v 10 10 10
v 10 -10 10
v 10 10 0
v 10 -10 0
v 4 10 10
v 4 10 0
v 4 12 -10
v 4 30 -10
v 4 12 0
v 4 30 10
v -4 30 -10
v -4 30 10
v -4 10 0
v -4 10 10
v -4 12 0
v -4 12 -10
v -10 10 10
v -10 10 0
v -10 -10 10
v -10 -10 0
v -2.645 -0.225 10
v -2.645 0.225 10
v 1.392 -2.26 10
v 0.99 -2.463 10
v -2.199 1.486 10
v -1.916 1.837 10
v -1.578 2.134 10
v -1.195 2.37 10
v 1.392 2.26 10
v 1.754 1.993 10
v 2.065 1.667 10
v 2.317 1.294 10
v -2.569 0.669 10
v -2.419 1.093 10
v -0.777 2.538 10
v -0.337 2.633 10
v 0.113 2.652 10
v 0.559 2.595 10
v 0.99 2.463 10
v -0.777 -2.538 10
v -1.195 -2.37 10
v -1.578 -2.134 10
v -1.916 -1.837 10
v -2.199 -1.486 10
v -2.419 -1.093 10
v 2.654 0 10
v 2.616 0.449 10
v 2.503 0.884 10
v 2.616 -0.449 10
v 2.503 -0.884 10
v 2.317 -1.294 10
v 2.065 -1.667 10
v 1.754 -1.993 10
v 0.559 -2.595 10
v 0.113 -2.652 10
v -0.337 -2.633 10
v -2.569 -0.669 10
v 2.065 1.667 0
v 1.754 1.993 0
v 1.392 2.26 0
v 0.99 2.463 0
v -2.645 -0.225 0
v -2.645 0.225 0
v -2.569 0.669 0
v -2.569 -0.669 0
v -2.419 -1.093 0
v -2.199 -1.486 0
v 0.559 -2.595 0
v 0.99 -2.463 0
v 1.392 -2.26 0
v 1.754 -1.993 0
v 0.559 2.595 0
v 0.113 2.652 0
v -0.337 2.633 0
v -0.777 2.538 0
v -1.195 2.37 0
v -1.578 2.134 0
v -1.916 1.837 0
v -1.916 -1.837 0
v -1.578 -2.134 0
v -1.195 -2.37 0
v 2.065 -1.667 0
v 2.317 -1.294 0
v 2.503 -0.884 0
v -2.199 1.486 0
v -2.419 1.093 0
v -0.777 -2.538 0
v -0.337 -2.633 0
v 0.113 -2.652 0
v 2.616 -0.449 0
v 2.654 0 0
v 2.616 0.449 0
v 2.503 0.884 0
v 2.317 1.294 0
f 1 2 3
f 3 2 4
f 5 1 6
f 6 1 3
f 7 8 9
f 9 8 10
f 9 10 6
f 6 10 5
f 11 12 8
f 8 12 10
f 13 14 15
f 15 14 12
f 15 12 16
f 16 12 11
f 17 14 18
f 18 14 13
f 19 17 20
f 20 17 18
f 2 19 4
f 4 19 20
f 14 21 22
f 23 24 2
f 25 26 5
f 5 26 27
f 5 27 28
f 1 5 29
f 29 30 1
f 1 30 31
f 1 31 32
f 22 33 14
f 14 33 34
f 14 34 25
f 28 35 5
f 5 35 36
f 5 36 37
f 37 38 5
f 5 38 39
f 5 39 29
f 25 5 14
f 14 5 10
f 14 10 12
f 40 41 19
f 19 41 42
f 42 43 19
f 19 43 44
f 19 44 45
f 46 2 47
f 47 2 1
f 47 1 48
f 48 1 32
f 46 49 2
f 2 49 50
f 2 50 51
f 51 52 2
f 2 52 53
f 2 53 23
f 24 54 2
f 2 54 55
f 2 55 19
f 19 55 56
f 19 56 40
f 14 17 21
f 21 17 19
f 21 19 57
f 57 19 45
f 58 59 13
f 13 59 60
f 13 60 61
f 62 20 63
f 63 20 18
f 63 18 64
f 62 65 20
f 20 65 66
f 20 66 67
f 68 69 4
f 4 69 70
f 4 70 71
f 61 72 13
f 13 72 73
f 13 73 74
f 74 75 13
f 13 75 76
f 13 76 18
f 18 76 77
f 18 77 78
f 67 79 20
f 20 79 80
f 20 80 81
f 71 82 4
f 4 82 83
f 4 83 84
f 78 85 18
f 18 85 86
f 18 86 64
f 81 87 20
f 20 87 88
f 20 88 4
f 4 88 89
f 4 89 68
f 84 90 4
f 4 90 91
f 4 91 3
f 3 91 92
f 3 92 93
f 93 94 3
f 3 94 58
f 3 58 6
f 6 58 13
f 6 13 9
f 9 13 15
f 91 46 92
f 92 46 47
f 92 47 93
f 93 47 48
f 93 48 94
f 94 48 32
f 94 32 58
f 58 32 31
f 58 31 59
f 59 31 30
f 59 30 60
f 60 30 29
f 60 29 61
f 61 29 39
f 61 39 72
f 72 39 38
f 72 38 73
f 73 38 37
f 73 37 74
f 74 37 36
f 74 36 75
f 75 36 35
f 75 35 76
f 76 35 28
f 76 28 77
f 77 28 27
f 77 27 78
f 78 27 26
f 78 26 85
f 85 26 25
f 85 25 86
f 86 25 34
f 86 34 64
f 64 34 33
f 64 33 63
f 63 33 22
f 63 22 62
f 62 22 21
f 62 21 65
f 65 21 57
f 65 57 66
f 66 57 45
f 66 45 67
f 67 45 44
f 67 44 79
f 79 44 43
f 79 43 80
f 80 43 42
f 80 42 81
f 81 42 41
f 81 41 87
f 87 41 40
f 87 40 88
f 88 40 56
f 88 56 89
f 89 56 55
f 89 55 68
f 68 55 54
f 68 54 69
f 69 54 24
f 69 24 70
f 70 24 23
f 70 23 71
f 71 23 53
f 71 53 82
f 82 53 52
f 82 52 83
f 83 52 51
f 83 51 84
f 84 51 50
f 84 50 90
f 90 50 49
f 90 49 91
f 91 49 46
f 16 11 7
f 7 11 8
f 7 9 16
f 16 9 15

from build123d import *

# Parameters (mm, degrees)
SKETCH1_W                  = 20
SKETCH1_H                  = 20
SKETCH1_W_2                = 8
BOSS_EXTRUDE1_DEPTH        = 10
F_4_0_209_DIAMETER_HOLE1_D = 5.3086
SKETCH1_3_W                = 8
SKETCH1_3_H                = 20
BOSS_EXTRUDE2_DEPTH        = 10
SKETCH4_W                  = 8
SKETCH4_H                  = 2
CUT_EXTRUDE1_DEPTH         = 10


with BuildPart() as part:
    # Sketch1 → Boss-Extrude1 (new body)
    with BuildSketch(Plane.XY):
        Rectangle(SKETCH1_W, SKETCH1_H)
        with Locations((0, 20)):
            Rectangle(SKETCH1_W_2, SKETCH1_H)
    extrude(amount=BOSS_EXTRUDE1_DEPTH)

    # #4 (0.209) Diameter Hole1 (through all)
    with Locations(Plane.XY.offset(10)):
        with Locations((0, 0)):
            Hole(F_4_0_209_DIAMETER_HOLE1_D / 2)

    # Sketch1<3> → Boss-Extrude2 (add)
    with BuildSketch(Plane.XY):
        with Locations((0, 20)):
            Rectangle(SKETCH1_3_W, SKETCH1_3_H)
    extrude(amount=-BOSS_EXTRUDE2_DEPTH)

    # Sketch4 → Cut-Extrude1 (cut)
    with BuildSketch(Plane(origin=(0, 0, -10), x_dir=(-1, 0, 0), z_dir=(0, 0, -1))):
        with Locations((0, 11)):
            Rectangle(SKETCH4_W, SKETCH4_H)
    extrude(amount=-CUT_EXTRUDE1_DEPTH, mode=Mode.SUBTRACT)


solid = part.part
